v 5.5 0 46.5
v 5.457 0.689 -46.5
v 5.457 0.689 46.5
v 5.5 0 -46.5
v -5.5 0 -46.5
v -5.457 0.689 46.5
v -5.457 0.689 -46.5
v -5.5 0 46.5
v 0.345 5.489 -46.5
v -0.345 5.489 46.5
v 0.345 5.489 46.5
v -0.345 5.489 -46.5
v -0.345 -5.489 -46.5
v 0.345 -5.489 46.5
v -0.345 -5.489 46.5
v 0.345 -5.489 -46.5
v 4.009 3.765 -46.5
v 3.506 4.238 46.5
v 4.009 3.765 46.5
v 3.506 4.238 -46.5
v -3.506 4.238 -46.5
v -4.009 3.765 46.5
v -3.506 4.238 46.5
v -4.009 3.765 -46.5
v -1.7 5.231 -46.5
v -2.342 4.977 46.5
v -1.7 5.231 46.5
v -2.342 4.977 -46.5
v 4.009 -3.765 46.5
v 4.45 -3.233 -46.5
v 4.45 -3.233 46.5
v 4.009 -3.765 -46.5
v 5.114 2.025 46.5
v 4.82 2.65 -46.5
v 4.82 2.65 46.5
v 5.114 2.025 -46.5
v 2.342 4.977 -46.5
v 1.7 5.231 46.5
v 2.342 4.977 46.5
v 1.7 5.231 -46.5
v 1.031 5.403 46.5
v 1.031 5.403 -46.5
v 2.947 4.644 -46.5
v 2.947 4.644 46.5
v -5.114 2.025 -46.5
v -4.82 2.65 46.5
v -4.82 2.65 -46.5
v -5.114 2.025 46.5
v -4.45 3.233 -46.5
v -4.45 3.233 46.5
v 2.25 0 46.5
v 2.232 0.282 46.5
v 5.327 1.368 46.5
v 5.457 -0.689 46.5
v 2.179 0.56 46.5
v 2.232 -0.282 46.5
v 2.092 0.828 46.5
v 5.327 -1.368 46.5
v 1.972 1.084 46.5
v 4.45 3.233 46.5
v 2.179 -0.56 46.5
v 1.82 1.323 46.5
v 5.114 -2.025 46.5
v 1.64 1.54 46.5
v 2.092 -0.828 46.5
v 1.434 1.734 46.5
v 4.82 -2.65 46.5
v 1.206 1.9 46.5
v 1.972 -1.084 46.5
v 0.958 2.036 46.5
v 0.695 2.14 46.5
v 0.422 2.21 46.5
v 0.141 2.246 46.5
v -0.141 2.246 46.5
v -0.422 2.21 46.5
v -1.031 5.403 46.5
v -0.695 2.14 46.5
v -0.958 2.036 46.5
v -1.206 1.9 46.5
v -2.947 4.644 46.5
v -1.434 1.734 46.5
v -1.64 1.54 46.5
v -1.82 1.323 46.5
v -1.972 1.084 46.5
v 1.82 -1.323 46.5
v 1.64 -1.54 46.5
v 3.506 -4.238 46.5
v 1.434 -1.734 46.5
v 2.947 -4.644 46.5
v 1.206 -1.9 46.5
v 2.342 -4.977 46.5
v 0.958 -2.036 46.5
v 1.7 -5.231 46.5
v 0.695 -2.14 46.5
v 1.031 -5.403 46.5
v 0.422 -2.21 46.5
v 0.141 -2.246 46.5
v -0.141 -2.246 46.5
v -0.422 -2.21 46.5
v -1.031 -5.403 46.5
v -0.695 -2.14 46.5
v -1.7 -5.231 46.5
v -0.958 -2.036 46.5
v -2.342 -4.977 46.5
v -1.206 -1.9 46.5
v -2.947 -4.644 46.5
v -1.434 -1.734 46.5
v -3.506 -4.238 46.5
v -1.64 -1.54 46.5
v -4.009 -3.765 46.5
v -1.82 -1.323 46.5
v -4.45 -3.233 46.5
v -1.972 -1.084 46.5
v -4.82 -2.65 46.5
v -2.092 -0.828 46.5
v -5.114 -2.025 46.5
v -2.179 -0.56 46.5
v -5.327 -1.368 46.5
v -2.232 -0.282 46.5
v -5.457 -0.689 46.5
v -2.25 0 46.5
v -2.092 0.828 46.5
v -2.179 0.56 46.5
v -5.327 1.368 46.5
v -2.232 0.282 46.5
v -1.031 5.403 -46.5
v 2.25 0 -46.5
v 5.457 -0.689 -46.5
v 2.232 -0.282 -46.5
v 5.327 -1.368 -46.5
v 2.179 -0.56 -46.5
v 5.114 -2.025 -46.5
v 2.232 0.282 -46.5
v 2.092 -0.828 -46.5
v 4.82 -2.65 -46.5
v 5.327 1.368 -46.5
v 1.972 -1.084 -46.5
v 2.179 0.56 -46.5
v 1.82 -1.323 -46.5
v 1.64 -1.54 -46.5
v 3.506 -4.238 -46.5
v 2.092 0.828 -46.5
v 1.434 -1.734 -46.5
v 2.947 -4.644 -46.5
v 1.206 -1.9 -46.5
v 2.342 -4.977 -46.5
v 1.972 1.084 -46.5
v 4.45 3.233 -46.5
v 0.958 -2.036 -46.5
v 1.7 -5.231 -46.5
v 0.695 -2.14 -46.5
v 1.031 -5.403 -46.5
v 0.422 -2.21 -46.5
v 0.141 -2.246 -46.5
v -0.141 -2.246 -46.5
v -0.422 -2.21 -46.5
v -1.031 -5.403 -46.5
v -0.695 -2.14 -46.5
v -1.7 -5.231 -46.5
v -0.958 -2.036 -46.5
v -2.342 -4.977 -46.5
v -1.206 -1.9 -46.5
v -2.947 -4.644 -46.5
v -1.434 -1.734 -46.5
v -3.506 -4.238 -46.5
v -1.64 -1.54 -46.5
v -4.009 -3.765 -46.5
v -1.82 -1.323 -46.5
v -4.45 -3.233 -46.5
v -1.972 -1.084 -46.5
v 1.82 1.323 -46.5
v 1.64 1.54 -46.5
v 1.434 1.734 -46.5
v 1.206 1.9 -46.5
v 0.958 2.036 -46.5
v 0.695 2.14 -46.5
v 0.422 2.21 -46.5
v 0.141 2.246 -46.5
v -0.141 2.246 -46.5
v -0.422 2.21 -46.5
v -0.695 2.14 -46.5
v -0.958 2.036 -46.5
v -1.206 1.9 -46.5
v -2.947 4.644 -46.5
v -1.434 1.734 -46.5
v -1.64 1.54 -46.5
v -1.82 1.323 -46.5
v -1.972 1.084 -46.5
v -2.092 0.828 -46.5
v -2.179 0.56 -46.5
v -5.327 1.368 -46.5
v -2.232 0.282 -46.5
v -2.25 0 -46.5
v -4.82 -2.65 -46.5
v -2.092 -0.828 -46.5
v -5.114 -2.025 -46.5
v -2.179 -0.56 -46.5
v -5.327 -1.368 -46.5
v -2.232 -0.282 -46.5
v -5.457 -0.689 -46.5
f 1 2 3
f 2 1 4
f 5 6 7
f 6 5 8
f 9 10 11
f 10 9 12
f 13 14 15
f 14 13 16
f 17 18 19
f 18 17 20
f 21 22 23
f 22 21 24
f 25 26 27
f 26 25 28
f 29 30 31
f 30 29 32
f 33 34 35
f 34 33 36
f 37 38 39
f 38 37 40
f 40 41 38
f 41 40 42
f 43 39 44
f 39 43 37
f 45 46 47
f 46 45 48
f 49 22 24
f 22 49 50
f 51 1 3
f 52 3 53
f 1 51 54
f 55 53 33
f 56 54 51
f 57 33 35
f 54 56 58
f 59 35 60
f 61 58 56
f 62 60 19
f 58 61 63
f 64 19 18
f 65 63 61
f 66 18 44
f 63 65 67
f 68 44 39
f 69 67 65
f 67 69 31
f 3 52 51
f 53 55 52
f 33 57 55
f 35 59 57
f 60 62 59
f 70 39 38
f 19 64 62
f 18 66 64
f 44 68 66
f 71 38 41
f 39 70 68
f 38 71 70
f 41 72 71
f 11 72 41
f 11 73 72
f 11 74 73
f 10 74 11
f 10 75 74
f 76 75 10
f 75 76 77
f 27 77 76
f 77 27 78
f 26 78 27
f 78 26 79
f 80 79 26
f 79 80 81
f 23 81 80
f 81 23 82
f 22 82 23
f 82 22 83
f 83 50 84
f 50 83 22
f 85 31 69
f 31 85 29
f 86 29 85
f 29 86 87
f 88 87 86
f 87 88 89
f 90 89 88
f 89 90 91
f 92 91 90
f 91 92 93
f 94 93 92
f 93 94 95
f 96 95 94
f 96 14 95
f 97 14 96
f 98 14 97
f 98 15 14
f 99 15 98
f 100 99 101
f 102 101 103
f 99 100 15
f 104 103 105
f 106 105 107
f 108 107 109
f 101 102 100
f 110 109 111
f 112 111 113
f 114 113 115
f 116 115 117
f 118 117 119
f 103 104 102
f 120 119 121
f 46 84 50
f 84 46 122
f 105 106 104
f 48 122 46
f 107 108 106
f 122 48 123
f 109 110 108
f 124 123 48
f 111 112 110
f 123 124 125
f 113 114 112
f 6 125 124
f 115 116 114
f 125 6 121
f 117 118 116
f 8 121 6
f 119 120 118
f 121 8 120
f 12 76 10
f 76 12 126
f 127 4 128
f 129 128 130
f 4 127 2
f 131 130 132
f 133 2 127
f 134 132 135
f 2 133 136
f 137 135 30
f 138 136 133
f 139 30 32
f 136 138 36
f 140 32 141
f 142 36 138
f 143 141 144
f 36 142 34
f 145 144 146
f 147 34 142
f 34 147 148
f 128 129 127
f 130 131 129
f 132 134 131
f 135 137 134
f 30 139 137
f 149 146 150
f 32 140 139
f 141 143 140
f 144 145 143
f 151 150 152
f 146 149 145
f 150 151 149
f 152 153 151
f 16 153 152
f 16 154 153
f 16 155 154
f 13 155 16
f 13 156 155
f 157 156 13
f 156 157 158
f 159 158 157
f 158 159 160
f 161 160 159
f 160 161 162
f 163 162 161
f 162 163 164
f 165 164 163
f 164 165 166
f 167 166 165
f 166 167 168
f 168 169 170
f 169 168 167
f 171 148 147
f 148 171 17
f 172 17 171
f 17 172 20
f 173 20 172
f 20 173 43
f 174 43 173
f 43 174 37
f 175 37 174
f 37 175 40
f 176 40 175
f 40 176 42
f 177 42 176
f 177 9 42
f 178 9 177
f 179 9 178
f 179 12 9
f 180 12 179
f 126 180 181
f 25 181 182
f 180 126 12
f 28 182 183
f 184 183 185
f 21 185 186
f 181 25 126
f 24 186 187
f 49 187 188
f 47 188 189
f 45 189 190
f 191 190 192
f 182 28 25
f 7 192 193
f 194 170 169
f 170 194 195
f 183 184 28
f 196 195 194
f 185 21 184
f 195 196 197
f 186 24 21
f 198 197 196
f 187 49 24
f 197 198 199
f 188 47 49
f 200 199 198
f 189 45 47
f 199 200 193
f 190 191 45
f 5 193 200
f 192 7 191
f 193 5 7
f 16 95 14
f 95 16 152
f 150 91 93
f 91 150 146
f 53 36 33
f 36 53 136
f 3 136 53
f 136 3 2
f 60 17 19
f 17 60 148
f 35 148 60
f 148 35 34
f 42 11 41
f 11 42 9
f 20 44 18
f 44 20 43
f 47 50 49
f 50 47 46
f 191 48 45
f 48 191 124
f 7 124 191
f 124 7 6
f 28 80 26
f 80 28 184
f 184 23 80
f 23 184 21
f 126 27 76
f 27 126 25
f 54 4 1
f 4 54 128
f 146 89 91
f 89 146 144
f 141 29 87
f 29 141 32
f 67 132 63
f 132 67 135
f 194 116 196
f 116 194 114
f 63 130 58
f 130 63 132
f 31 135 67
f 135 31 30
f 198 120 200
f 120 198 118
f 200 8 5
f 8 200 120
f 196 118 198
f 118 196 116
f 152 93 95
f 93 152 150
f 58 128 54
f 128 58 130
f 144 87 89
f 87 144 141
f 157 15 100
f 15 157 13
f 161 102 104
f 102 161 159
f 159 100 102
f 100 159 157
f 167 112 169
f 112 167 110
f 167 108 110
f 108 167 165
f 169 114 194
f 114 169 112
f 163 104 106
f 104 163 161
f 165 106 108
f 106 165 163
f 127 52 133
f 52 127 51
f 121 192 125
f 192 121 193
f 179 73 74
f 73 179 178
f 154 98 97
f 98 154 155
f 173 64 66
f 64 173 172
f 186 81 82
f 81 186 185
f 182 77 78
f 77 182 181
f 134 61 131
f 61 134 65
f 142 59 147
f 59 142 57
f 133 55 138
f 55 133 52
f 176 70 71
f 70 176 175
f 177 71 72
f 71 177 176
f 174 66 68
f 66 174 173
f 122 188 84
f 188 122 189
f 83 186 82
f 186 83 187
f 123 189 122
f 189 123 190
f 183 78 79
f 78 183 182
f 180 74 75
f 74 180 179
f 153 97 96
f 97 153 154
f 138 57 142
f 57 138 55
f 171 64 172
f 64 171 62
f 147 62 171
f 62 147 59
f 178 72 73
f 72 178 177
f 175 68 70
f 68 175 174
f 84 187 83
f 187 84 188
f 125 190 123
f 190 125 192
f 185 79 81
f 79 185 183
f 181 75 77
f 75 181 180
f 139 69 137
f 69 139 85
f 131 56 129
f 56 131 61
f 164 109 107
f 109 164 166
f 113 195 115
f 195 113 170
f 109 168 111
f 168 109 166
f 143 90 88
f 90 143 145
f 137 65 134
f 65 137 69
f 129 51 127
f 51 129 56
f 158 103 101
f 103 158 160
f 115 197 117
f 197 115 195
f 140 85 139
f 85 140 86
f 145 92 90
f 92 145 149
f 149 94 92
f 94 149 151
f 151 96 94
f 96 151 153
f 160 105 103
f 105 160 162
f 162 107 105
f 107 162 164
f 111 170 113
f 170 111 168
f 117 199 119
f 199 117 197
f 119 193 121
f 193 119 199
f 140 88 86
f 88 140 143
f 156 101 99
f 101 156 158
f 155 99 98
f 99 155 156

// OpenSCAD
$fn = 50;


difference() {
	union() {
		translate(v = [0, 0, -46.5000000000]) {
			cylinder(h = 93, r = 5.5000000000);
		}
	}
	union() {
		translate(v = [0, 0, -100.0000000000]) {
			cylinder(h = 200, r = 2.2500000000);
		}
	}
}
